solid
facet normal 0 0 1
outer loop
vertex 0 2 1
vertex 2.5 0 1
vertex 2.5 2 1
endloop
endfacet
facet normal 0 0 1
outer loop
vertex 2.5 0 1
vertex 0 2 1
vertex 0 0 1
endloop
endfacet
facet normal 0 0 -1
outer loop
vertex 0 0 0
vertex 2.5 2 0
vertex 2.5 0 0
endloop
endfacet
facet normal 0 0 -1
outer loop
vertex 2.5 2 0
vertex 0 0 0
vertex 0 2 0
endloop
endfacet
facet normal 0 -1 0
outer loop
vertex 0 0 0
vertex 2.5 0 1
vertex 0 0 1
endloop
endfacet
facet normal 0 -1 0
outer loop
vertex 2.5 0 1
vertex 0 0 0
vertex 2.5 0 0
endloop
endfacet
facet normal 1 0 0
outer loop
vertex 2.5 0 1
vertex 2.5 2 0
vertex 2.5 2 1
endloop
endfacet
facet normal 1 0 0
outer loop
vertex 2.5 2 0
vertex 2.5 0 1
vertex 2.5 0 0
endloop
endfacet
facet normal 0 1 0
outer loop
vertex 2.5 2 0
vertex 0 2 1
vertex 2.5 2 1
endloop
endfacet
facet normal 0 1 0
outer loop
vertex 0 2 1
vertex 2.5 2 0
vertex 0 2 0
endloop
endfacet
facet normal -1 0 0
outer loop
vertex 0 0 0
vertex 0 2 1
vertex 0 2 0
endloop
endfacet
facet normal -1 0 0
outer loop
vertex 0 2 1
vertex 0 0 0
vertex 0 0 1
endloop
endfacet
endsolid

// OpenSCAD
/* Warning, this is a very basic generator with a lot of approximation 
input data : [VFLGA, AWA, 2.5x2.0mm, 6, , C, C04-01204C]
generated by com.zoubworld.electronics.cad.model3d.Basic
Date : Sun Feb 15 10:50:49 CET 2026
*/

//body
color("black")
translate([0,0,0])
cube([2.5,2.0,1.0], center=false);
